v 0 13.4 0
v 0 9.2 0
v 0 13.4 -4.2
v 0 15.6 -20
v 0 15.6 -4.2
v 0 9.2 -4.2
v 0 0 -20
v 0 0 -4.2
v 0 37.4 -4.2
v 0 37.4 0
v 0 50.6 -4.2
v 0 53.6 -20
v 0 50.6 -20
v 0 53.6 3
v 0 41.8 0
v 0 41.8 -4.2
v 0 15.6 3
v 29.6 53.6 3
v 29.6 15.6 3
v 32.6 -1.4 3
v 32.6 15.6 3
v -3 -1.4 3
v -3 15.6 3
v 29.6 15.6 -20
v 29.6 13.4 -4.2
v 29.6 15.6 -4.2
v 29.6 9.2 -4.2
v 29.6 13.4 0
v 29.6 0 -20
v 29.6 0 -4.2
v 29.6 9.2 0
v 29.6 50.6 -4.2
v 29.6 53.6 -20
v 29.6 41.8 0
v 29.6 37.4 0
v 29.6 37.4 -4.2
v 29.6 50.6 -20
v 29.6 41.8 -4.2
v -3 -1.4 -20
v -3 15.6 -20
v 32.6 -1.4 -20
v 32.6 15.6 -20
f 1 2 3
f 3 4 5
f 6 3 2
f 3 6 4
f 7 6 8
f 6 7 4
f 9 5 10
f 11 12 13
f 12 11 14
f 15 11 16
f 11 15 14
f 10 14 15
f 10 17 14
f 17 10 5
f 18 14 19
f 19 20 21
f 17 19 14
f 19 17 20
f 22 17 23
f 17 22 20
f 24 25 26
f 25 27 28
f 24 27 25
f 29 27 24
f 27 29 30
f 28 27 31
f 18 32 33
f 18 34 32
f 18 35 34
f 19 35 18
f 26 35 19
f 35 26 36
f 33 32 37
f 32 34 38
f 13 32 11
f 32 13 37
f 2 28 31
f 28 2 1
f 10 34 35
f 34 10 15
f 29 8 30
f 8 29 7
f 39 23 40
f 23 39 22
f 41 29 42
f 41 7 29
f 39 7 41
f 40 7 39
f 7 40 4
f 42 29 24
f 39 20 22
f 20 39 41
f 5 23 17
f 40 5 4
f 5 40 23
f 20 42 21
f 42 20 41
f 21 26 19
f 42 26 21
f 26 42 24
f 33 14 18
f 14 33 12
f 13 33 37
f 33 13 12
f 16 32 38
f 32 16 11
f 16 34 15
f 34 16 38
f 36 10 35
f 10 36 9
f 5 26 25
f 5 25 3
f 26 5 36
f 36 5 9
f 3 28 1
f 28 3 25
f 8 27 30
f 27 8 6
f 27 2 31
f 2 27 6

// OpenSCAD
//acople1
union(){
difference(){
union(){
cube([29.6,50.6,3]);
translate([-3,-1.4,-20])
    cube([3,17,23]);
translate([29.6,-1.4,-20])
    cube([3,17,23]);
translate([0,-1.4,-20])
    cube([29.6,1.4,23]);
translate([0,50.6,-20])
    cube([29.6,3,23]);
translate([0,41.8,-4.2])
    cube([29.6,9,4.2]);
translate([0,13.4,-4.2])    
    cube([29.6,24,4.2]);
translate([0,0,-4.2])    
    cube([29.6,9.2,4.2]);
}
/*
translate([14.8,15,-2])
    cylinder(d=3.1,h=15,$fn=500);
translate([14.8,35,-2])
    cylinder(d=3.1,h=15,$fn=500);
*/
}
}
